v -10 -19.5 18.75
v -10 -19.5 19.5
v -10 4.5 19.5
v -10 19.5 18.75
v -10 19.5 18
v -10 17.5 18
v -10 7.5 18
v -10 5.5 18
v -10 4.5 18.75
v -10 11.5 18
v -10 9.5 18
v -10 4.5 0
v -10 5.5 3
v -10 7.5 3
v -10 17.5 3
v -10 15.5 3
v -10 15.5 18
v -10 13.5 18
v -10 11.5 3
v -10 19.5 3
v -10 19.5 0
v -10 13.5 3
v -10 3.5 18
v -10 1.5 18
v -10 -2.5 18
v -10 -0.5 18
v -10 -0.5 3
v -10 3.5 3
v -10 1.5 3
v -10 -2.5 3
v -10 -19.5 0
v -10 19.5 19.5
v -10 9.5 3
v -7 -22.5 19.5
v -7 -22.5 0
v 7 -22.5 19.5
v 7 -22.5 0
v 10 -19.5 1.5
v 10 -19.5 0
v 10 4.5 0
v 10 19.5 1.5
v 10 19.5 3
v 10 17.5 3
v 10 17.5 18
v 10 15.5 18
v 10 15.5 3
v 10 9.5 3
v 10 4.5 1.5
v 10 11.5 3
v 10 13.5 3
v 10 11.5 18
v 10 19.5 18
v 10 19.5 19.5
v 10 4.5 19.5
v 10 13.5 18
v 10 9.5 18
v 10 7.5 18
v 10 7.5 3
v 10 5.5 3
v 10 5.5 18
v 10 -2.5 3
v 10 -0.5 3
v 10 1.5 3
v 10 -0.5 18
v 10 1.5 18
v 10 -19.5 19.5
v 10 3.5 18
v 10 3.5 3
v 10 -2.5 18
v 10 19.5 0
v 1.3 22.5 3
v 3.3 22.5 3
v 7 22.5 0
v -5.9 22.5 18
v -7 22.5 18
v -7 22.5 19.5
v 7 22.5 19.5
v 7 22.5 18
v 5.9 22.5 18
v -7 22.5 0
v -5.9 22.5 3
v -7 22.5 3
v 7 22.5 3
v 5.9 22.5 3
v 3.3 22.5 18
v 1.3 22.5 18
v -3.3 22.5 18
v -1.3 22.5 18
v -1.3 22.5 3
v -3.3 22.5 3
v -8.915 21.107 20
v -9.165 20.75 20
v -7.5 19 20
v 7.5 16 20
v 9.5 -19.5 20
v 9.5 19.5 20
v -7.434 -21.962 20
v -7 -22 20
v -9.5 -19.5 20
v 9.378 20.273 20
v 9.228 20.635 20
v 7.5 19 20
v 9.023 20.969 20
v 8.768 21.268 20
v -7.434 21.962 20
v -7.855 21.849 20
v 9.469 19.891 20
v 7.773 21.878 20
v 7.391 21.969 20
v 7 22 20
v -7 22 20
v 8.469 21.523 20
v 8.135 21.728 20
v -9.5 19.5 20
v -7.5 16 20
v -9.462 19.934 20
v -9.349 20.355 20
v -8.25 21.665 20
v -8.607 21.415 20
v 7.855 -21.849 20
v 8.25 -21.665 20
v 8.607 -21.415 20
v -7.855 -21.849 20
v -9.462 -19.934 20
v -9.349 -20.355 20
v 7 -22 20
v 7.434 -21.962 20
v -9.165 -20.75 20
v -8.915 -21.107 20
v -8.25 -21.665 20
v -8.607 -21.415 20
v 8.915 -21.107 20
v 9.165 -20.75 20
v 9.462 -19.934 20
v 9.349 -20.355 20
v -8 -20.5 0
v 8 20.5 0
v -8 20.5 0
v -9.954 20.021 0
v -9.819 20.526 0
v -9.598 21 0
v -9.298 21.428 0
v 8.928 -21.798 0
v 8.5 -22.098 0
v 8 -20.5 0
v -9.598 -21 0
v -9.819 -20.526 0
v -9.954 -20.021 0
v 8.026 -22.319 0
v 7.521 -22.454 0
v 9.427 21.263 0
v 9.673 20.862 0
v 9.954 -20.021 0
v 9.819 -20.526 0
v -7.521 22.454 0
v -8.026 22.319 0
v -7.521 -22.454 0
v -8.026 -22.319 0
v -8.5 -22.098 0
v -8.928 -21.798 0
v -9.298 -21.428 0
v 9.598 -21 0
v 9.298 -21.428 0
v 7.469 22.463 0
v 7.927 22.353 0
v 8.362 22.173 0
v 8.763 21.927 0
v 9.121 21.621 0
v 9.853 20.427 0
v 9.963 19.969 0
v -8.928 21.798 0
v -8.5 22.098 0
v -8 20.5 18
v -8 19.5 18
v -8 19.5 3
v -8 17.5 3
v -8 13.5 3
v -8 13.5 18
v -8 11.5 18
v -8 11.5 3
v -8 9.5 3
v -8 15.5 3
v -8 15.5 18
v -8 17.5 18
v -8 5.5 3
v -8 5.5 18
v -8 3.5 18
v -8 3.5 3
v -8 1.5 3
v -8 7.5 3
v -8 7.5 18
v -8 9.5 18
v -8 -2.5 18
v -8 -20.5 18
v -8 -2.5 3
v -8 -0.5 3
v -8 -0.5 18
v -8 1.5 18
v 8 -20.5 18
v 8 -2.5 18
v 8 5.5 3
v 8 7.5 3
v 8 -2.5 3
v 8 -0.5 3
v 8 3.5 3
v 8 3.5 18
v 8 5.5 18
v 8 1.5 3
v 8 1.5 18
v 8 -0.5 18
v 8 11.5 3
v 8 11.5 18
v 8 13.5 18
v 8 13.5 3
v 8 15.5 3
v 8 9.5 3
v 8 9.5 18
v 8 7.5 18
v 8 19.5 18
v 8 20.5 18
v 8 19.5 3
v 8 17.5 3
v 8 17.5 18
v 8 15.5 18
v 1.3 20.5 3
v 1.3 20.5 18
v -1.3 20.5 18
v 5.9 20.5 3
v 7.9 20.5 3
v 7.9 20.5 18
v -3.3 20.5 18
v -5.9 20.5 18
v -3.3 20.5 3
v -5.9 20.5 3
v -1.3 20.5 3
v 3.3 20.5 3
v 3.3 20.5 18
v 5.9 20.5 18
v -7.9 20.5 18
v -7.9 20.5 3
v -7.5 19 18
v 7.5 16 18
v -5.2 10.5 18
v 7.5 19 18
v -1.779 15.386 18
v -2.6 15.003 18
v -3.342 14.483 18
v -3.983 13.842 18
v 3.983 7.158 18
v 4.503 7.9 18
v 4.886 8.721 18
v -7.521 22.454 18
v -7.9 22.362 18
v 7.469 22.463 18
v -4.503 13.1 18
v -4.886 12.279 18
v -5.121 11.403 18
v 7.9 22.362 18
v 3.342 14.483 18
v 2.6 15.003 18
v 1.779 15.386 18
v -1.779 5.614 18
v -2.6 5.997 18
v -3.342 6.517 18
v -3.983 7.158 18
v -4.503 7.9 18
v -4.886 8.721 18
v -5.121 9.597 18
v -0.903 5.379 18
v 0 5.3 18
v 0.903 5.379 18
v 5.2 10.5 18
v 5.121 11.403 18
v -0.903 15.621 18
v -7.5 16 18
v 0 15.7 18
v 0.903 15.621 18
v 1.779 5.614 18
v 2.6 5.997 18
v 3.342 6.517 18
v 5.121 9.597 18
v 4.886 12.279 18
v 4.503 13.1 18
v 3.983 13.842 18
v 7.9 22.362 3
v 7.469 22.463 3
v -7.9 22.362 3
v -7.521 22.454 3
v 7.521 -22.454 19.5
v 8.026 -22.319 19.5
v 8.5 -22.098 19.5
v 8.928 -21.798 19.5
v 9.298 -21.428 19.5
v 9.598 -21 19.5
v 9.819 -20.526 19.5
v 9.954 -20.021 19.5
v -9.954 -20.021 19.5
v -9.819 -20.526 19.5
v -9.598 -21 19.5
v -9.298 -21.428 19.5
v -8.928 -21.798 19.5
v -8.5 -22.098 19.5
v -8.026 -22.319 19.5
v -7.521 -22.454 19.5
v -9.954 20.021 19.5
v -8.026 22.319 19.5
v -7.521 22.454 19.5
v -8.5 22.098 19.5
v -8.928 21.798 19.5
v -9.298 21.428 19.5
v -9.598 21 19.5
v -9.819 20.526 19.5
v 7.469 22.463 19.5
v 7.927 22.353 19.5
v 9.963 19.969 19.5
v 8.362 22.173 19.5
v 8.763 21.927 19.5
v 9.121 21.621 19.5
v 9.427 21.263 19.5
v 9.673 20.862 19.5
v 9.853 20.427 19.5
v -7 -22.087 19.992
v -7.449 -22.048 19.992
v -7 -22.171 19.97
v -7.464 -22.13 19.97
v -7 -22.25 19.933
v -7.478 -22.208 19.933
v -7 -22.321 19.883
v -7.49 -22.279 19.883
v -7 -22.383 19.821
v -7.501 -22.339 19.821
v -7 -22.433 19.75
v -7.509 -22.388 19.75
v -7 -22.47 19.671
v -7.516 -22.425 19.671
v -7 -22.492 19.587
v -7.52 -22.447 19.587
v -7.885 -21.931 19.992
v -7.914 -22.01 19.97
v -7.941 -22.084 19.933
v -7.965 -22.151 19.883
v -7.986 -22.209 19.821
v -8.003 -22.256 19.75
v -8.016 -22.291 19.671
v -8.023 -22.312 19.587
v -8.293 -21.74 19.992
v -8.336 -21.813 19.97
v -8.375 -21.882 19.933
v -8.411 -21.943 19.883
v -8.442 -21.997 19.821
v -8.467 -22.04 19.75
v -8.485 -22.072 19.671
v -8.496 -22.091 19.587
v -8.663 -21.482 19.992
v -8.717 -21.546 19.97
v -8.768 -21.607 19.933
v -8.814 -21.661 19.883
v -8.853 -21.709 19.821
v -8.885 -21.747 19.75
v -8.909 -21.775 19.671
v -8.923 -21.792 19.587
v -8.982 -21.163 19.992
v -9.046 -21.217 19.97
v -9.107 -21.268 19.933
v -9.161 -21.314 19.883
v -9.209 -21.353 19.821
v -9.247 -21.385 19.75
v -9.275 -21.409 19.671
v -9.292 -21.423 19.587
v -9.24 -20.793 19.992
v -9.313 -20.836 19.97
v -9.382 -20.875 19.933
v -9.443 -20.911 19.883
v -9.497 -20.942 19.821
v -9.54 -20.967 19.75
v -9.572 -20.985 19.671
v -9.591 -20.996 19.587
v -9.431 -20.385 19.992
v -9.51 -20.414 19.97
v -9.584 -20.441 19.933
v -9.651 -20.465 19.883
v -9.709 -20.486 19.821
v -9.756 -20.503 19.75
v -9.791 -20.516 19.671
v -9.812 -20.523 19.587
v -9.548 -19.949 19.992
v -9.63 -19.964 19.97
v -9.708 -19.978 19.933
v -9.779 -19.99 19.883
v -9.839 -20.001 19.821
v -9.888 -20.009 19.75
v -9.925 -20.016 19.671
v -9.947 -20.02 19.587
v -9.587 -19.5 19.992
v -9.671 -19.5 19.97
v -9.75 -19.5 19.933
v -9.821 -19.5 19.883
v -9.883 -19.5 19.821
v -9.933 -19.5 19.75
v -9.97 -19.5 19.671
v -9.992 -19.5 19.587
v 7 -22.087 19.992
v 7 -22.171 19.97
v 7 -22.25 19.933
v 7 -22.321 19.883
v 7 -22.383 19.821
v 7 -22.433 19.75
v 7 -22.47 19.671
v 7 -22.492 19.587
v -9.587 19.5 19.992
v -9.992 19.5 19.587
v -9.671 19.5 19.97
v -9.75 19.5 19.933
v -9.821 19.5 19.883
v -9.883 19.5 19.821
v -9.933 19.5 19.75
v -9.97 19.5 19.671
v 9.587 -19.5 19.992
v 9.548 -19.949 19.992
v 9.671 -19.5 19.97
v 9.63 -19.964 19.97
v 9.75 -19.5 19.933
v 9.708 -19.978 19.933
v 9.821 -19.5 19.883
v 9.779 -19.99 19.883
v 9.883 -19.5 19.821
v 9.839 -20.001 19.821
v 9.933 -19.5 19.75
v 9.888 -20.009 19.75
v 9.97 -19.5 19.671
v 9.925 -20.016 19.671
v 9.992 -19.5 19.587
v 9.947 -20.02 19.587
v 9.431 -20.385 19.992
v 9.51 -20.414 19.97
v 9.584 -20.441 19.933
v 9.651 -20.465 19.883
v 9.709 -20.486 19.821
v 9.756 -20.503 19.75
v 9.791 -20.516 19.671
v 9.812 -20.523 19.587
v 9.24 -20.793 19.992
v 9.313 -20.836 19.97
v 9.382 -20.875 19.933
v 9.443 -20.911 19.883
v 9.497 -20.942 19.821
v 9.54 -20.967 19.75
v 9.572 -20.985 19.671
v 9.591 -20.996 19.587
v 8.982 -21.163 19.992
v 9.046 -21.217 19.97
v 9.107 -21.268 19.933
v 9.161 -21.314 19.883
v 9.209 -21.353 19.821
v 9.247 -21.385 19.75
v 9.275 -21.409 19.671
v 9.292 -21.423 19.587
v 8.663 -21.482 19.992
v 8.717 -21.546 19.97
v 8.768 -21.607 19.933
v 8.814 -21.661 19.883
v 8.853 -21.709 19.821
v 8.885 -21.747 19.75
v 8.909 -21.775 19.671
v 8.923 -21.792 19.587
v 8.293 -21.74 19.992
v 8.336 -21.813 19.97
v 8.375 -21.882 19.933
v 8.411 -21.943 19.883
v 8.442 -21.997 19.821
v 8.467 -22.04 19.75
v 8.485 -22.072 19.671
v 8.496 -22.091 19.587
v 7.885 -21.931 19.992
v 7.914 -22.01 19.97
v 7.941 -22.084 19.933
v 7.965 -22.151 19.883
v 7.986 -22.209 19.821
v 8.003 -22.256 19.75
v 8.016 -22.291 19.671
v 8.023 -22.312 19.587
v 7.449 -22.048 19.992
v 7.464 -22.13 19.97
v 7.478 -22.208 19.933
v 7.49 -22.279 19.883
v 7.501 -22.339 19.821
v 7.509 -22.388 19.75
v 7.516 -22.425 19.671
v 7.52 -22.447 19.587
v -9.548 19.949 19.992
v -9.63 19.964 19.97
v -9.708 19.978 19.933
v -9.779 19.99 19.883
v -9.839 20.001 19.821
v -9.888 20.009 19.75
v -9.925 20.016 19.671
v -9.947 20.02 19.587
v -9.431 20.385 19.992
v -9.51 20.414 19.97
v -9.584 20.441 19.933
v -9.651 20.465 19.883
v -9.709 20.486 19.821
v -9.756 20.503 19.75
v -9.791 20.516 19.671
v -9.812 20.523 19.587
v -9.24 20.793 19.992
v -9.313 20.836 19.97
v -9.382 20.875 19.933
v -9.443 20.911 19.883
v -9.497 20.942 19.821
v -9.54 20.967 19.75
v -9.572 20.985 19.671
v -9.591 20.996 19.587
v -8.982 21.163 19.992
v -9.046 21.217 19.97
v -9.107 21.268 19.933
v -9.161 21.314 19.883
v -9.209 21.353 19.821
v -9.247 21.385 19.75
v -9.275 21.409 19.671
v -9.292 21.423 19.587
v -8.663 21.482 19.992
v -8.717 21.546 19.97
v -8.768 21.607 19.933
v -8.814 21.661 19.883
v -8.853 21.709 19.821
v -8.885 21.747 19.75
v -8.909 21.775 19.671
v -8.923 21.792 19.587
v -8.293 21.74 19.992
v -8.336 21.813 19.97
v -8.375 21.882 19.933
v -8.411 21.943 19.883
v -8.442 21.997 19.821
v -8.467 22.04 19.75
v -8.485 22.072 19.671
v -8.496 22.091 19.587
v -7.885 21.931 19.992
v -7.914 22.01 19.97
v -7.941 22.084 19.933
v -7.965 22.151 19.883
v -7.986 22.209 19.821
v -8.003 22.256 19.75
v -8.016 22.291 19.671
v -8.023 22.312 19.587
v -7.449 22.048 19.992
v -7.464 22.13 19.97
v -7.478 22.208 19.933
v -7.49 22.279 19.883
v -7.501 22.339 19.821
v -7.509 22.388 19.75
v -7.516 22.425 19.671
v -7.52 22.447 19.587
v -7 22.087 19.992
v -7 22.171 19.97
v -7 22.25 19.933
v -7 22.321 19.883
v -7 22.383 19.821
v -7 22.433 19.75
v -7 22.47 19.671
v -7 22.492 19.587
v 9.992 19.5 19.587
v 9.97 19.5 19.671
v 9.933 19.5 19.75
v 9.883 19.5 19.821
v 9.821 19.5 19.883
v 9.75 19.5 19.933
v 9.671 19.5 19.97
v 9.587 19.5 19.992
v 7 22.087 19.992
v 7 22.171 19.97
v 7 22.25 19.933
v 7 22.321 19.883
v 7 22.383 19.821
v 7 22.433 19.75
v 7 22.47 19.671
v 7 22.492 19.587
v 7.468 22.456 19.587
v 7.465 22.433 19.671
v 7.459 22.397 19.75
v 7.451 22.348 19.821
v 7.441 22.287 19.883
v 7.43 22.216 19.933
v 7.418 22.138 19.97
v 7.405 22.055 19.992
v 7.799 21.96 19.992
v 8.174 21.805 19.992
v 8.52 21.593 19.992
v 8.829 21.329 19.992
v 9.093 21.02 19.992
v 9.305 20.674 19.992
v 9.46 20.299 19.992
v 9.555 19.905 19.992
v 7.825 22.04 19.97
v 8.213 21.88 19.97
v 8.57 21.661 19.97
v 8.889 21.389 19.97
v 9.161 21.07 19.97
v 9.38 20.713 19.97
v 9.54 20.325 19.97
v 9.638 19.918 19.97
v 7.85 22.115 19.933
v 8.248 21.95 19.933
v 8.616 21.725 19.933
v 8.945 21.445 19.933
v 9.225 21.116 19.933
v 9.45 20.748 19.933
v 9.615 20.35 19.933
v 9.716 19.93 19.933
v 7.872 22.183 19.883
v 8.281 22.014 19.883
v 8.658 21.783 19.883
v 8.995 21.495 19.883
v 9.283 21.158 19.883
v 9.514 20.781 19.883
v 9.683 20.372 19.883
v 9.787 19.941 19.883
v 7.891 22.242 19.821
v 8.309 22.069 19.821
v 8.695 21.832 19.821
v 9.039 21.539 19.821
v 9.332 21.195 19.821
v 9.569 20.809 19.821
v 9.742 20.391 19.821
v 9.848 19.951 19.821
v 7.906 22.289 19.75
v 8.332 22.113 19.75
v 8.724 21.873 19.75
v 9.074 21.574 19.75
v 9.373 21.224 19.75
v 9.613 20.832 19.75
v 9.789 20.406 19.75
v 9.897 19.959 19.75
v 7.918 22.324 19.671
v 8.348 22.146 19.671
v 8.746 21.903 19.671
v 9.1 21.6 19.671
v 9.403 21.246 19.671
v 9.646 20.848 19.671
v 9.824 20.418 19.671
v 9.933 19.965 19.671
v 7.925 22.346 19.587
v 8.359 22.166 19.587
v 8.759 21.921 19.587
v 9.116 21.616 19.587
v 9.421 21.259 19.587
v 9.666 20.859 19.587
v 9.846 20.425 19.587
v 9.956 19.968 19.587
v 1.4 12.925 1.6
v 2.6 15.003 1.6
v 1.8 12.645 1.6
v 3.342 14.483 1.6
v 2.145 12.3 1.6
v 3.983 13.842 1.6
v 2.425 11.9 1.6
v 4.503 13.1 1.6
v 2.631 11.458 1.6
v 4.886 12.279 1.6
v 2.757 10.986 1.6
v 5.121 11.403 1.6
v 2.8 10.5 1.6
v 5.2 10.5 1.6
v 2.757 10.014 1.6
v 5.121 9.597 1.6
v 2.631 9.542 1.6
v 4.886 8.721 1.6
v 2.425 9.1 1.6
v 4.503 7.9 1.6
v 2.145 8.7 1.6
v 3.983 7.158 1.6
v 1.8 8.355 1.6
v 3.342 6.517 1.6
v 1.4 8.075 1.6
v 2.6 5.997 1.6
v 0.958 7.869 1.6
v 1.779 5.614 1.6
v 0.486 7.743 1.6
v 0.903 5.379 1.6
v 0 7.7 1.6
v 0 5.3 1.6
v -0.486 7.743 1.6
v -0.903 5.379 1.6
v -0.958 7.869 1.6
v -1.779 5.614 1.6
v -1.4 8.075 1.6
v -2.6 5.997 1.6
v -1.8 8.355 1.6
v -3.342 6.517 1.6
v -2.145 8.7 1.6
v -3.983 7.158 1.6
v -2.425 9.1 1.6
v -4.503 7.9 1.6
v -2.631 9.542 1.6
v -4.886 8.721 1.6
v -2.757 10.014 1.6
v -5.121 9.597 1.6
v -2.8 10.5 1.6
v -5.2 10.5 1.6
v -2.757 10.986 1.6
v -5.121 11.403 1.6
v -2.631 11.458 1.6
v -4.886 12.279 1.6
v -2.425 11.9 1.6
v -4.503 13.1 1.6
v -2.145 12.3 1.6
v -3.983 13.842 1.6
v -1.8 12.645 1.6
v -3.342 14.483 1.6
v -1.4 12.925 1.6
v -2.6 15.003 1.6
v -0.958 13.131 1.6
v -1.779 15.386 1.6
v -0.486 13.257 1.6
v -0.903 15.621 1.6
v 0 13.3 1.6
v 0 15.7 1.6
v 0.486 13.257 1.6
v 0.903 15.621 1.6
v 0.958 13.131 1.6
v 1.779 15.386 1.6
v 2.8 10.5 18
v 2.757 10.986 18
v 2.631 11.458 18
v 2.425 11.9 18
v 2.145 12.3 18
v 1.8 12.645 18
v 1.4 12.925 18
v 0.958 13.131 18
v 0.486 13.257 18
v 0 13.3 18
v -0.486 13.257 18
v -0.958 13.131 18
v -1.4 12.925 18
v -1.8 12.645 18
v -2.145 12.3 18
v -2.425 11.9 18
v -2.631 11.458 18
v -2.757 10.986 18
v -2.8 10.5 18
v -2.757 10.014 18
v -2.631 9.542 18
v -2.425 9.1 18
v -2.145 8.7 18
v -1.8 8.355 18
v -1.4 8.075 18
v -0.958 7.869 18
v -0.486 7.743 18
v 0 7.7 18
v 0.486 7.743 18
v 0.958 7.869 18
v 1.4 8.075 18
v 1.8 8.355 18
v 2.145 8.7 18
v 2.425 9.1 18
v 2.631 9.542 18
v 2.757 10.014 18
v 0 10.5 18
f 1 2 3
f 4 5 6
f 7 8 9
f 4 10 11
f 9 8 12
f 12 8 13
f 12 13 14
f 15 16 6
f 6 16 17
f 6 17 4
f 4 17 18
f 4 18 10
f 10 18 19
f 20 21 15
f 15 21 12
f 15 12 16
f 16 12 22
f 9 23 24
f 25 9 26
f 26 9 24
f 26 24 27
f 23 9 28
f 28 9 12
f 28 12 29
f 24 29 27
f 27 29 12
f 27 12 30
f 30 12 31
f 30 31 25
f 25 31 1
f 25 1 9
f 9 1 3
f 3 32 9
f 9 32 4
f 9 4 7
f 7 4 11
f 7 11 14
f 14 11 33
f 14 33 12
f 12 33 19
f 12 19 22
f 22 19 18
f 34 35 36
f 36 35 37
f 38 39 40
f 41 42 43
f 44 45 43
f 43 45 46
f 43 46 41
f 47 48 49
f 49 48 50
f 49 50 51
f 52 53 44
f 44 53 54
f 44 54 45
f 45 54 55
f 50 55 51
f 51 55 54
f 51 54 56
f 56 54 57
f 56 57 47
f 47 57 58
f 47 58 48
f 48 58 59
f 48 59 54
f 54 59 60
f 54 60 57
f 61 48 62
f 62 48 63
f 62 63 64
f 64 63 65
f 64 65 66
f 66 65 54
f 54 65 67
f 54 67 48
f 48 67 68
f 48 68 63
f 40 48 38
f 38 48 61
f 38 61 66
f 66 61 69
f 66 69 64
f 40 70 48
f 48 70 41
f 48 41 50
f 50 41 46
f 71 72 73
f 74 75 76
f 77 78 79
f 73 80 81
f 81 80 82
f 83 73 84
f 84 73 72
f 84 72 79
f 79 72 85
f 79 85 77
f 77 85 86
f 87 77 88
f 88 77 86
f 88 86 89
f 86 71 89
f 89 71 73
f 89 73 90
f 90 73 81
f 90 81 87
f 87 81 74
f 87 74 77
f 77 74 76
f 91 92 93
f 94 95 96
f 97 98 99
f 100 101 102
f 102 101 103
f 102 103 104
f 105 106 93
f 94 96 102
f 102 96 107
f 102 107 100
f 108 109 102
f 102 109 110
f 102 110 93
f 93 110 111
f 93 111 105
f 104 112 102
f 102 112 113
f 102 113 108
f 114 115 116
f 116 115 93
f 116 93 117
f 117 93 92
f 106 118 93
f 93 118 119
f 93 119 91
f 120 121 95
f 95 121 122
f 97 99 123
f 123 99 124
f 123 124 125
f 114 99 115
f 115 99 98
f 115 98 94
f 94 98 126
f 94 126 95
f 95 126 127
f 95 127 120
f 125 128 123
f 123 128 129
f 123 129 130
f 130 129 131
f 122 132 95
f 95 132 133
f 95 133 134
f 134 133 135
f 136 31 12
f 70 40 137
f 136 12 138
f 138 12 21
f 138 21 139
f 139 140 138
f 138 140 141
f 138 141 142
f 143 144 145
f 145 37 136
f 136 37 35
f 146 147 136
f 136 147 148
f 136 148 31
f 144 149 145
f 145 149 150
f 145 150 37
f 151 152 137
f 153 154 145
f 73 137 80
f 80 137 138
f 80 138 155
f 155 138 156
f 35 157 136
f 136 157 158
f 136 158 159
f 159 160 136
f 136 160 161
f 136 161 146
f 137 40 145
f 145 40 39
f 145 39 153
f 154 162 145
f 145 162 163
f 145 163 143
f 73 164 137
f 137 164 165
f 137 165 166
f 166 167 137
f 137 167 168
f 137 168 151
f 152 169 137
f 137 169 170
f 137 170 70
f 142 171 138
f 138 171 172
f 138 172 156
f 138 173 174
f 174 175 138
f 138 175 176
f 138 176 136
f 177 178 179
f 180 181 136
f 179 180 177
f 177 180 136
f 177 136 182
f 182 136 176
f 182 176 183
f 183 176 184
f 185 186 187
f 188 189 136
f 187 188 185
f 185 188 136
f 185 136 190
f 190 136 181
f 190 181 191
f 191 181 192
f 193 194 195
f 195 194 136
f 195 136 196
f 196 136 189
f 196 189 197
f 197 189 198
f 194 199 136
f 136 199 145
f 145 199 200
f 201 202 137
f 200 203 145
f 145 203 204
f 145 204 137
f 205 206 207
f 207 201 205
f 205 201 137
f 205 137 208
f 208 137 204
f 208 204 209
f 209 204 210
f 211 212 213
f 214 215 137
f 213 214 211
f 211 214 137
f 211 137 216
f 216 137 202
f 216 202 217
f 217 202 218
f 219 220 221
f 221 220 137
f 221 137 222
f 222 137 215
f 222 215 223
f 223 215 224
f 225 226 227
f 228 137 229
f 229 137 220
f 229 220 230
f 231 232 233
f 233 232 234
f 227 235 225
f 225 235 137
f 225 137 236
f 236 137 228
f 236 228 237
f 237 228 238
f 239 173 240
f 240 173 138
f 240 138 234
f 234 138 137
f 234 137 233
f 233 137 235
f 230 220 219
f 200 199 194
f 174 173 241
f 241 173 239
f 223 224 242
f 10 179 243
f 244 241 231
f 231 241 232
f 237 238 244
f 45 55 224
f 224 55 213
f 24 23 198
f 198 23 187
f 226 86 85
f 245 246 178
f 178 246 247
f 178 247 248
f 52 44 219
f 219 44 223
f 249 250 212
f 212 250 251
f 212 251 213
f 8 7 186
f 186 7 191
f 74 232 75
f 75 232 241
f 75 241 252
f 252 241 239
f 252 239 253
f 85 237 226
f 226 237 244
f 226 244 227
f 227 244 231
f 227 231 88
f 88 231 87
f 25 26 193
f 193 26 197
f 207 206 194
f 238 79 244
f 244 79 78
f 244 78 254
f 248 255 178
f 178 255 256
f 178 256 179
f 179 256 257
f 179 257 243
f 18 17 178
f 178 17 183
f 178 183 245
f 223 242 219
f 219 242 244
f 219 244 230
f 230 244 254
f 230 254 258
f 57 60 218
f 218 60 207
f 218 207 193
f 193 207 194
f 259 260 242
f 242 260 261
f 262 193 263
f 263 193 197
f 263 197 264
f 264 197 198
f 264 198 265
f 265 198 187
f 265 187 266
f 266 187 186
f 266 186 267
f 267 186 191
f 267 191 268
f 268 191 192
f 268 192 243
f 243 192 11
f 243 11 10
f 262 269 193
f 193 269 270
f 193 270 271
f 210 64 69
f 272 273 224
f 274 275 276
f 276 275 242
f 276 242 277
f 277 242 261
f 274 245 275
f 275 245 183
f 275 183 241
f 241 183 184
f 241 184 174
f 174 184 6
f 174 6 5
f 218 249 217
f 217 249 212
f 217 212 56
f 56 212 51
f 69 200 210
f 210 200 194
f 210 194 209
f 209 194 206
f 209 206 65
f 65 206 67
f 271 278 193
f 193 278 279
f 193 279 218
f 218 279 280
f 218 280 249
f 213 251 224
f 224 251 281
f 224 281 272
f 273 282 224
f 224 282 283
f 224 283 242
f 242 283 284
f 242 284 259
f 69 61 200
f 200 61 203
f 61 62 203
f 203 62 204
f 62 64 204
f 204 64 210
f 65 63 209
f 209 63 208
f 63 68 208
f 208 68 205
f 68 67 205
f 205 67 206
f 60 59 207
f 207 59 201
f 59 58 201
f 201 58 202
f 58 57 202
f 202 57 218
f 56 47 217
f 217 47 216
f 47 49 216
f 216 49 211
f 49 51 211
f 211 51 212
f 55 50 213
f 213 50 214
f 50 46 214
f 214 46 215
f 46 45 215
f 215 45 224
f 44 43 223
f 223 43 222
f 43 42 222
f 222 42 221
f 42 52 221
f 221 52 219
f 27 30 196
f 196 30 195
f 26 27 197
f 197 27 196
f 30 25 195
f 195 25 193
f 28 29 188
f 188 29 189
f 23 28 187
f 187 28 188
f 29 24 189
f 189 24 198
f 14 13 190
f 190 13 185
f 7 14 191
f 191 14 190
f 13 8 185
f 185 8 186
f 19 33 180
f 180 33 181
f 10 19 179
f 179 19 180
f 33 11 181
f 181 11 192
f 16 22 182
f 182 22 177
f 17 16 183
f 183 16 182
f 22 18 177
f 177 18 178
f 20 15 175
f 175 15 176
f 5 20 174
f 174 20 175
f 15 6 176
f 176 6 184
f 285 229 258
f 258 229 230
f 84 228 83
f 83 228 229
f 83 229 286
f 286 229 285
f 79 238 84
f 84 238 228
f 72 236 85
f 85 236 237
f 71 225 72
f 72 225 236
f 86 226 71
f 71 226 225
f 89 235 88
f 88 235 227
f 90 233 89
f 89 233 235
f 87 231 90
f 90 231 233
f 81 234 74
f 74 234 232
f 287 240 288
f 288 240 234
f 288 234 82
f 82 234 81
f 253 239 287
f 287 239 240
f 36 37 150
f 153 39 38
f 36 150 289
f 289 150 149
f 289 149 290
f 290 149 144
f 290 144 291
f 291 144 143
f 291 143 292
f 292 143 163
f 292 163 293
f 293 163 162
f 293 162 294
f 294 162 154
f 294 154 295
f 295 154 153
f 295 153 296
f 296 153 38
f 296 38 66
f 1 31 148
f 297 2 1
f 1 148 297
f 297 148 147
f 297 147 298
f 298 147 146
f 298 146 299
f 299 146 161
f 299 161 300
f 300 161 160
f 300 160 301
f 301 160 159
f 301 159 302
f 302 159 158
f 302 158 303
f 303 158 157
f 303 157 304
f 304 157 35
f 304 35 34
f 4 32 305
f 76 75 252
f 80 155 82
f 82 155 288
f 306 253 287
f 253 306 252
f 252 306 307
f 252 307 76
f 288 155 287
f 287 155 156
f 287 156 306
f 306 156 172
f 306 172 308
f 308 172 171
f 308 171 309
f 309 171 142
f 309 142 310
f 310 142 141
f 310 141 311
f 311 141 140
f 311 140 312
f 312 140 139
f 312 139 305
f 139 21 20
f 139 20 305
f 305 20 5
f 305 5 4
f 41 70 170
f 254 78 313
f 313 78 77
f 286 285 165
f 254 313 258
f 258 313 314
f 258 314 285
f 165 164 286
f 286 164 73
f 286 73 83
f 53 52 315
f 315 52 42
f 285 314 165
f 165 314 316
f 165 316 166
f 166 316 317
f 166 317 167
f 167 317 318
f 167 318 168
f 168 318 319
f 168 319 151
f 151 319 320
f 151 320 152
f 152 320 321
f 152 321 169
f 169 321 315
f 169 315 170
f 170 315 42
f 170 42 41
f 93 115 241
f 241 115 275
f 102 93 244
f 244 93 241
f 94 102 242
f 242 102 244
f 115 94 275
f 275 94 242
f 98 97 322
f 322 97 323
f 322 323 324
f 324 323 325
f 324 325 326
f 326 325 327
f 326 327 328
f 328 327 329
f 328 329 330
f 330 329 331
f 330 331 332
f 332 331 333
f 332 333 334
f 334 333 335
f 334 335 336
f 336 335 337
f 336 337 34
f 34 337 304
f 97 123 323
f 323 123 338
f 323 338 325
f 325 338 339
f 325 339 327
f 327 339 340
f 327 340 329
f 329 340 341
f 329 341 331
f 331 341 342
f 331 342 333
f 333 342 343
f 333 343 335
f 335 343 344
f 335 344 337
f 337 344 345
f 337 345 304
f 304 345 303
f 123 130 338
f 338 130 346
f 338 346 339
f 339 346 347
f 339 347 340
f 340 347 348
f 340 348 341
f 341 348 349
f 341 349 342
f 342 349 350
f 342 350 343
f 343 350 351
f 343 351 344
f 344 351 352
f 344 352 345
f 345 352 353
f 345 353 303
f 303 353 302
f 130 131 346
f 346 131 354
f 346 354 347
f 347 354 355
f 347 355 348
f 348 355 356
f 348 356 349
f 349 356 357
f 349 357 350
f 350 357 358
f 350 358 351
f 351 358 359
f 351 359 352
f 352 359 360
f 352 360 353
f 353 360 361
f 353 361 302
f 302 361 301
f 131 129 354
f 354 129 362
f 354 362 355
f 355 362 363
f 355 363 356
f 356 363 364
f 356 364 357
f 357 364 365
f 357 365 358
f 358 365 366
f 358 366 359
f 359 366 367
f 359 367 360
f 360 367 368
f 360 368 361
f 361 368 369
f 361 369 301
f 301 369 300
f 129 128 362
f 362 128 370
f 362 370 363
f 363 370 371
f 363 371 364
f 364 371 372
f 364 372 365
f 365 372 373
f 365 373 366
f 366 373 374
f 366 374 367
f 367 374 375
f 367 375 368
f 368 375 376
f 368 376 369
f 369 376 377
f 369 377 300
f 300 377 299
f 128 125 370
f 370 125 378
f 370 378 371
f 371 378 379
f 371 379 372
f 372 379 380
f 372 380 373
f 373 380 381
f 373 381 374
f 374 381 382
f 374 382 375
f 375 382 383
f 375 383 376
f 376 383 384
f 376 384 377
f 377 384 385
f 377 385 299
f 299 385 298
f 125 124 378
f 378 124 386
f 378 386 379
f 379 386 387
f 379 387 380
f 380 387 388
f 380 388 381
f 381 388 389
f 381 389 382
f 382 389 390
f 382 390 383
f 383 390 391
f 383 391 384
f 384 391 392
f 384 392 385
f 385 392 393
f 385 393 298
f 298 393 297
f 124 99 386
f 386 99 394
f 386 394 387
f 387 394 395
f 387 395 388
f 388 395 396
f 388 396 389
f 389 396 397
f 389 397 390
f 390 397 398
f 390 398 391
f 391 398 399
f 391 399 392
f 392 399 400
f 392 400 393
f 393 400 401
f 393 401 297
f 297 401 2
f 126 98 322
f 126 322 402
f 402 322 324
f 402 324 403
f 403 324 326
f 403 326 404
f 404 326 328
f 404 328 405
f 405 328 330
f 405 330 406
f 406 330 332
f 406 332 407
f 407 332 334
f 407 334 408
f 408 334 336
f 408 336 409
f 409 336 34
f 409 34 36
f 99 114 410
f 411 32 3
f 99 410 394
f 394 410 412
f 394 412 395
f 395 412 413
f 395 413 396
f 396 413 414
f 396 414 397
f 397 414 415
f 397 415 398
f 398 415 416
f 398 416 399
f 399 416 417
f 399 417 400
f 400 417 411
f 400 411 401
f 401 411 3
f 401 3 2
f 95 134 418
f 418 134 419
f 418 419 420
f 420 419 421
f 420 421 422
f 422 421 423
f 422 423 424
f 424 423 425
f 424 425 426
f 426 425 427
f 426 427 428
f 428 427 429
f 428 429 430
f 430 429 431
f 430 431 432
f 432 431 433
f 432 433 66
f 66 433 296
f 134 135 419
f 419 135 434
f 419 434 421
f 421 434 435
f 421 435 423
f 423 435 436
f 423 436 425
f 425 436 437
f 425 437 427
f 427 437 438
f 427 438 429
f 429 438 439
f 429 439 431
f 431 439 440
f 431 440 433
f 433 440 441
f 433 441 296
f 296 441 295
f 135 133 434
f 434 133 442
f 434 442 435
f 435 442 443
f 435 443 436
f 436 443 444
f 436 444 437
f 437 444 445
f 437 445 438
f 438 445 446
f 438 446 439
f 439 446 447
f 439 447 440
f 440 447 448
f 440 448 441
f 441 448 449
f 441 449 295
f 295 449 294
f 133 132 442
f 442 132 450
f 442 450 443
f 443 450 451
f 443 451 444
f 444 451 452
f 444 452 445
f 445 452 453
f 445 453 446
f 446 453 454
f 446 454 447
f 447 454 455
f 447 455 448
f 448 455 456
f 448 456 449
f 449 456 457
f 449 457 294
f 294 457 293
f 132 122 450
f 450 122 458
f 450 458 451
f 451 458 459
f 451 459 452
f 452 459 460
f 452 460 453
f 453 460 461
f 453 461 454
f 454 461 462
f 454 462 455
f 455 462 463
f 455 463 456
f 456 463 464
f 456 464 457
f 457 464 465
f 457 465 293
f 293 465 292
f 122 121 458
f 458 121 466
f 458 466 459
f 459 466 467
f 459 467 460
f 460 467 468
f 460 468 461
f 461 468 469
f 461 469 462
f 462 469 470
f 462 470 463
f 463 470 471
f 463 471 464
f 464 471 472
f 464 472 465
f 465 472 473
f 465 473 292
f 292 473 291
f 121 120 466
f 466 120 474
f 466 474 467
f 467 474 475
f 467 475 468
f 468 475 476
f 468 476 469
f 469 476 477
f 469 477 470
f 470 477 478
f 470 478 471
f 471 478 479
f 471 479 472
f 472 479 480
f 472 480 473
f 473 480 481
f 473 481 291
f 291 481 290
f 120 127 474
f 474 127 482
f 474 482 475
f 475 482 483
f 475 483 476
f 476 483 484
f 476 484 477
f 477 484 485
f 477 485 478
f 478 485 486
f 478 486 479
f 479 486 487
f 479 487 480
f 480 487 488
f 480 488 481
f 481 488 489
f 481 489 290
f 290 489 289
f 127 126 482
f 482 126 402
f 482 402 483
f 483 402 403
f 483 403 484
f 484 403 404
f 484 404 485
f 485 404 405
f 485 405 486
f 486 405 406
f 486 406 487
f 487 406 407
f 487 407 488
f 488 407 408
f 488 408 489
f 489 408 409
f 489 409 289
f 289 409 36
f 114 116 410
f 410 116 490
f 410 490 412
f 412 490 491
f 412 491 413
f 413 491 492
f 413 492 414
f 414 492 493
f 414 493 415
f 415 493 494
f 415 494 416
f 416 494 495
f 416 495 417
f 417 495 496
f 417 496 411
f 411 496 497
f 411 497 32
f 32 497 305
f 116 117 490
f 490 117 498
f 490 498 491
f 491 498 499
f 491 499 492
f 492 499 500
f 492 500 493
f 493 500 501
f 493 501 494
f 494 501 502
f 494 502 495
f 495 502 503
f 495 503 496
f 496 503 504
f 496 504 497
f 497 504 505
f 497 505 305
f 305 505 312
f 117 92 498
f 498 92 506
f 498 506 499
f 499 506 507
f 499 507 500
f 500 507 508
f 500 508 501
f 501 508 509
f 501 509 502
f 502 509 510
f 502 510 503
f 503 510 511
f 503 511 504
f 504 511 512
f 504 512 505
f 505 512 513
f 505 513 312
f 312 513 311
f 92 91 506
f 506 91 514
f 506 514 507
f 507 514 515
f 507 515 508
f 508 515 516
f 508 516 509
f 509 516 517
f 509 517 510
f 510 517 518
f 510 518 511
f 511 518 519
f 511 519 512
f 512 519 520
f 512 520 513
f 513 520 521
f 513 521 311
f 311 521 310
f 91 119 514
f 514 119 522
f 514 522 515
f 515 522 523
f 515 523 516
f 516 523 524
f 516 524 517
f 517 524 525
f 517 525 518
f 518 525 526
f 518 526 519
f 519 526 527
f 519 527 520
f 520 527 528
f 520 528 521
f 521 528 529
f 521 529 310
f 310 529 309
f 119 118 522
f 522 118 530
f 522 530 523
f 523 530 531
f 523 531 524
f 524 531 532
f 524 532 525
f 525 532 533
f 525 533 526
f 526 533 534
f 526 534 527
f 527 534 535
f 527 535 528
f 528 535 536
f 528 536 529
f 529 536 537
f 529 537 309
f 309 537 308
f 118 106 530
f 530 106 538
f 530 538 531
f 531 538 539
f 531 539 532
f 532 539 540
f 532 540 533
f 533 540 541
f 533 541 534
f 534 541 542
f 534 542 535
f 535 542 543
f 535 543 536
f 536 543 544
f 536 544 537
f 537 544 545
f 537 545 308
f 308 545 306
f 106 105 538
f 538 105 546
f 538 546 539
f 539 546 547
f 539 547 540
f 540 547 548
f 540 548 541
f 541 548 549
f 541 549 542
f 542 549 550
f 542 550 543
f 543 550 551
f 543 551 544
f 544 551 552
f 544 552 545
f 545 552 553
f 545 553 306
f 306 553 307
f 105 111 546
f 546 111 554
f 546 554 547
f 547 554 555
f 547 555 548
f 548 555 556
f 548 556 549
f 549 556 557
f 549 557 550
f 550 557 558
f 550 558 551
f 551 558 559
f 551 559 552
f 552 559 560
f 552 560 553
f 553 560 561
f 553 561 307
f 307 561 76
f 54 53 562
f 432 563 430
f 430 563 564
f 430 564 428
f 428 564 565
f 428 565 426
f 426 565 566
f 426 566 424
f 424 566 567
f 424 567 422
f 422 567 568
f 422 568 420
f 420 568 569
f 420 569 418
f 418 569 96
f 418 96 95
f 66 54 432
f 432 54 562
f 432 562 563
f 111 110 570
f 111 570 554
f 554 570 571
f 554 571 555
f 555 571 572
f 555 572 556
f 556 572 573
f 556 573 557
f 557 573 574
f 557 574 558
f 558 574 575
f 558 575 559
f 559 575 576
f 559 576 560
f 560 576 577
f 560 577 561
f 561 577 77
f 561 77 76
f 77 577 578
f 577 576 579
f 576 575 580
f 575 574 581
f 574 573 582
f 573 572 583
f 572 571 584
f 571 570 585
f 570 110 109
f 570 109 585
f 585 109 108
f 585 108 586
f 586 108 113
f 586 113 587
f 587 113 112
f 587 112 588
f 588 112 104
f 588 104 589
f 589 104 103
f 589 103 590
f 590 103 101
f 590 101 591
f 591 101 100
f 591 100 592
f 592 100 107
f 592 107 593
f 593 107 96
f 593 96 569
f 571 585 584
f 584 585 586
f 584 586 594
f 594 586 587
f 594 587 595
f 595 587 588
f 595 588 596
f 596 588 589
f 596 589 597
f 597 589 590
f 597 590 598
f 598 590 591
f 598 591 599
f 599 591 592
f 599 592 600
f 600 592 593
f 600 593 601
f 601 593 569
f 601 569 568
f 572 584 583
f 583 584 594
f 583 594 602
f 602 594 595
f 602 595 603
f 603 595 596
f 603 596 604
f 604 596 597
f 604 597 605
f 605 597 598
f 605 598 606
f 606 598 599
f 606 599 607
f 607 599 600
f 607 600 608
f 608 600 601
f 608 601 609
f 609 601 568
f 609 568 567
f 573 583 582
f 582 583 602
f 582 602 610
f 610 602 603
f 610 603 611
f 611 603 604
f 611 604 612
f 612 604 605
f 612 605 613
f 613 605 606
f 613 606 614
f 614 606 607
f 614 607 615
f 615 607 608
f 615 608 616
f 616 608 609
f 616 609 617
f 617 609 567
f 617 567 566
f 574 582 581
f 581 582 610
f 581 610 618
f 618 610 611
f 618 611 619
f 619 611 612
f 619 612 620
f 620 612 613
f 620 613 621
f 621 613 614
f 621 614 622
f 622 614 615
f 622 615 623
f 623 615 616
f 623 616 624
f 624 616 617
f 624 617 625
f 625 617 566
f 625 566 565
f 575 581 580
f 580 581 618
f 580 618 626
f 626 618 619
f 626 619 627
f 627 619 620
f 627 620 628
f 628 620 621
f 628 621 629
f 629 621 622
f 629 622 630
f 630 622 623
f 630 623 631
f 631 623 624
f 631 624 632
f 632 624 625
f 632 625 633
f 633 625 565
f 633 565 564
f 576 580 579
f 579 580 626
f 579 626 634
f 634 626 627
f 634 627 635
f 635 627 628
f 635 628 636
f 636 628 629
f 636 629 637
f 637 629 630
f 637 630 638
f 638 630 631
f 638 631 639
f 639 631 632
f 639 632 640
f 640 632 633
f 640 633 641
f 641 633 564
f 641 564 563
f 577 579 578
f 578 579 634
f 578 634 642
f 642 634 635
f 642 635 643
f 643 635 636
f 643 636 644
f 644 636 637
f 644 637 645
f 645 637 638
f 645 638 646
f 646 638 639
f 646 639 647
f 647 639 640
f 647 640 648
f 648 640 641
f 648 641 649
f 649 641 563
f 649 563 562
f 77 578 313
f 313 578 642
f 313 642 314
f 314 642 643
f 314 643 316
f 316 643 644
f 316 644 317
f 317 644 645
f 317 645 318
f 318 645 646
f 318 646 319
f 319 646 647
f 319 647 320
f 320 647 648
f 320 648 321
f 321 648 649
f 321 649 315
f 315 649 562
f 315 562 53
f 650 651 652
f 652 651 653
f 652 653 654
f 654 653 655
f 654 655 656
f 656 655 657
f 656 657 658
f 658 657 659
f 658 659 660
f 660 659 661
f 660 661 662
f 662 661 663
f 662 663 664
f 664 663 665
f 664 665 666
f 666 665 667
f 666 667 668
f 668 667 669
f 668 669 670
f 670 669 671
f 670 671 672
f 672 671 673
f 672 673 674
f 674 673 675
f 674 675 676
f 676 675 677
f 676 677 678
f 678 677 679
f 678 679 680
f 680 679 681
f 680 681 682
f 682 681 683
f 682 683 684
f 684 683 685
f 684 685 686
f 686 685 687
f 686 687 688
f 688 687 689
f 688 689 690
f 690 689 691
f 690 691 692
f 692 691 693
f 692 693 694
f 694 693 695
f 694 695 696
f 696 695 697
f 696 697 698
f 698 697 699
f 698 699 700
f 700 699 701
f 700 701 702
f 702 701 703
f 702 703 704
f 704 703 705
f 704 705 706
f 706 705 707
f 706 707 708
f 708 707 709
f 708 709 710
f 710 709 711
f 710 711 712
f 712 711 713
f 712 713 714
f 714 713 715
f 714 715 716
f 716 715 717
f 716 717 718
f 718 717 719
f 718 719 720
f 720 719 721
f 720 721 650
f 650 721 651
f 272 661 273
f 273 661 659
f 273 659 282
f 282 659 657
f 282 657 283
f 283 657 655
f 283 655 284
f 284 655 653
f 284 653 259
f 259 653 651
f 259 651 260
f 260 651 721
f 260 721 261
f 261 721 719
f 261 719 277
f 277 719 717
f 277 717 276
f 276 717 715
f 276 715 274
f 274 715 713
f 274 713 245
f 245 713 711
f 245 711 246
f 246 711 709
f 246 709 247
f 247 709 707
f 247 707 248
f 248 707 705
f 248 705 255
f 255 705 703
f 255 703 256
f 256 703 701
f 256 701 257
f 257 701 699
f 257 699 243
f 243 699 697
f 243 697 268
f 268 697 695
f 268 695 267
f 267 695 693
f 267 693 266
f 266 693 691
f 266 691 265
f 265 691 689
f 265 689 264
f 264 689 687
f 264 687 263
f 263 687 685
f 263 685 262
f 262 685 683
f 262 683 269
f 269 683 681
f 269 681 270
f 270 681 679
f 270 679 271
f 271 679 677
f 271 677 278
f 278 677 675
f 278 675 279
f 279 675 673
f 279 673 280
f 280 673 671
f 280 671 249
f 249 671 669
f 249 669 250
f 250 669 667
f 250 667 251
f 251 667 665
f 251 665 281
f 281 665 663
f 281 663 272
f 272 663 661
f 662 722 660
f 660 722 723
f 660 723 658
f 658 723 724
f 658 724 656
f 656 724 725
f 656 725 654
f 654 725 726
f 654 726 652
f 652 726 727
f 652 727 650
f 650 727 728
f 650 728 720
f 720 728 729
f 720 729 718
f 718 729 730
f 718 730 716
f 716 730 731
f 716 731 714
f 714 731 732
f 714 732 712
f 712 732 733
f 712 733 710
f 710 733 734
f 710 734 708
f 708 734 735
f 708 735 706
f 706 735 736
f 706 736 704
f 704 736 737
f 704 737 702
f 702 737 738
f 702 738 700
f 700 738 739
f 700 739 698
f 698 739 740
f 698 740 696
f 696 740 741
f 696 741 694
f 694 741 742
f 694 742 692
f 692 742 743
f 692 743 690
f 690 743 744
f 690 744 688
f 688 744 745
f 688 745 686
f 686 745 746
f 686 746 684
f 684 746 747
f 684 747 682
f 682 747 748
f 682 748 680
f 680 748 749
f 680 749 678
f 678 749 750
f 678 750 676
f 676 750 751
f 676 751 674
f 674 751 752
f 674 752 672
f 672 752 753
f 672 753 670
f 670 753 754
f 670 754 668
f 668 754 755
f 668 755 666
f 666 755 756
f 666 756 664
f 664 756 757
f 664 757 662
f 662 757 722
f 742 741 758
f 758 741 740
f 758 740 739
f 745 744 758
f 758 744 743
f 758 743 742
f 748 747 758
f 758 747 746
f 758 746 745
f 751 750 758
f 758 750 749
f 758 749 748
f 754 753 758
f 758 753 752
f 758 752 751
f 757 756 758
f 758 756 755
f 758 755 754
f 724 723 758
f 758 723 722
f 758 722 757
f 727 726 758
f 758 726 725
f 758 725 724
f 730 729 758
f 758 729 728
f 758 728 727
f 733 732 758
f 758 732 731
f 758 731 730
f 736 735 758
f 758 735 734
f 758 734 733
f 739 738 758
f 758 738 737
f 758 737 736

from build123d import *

# Parameters (mm, degrees)
SKETCH2_W           = 20
SKETCH2_H           = 45
BOSS_EXTRUDE1_DEPTH = 20
SHELL1_T            = -2
CUT_EXTRUDE1_REACH  = 38.142
SKETCH3_W           = 15
SKETCH3_H           = 2
CUT_EXTRUDE2_REACH  = 52.249
SKETCH4_W           = 2
SKETCH4_H           = 15
FILLET1_R           = 3
SKETCH7_W           = 15
SKETCH7_H           = 3
CUT_EXTRUDE3_DEPTH  = 2
FILLET3_R           = 0.5
SKETCH8_R           = 5.2
SKETCH8_R_2         = 2.8
BOSS_EXTRUDE2_DEPTH = 16.4


with BuildPart() as part:
    # Sketch2 → Boss-Extrude1 (new body)
    with BuildSketch(Plane.XY):
        Rectangle(SKETCH2_W, SKETCH2_H)
    extrude(amount=BOSS_EXTRUDE1_DEPTH)

    # Shell1
    shell1_openings = [part.faces().sort_by_distance(p)[0] for p in [
        (0, 0, 0),
    ]]
    offset(amount=SHELL1_T, openings=shell1_openings, kind=Kind.INTERSECTION)

    # Cut-Extrude1: up to this face of the body (flat: up to its plane)
    cut_extrude1_end = Plane(part.part.faces().sort_by_distance((-10, 0, 10))[0])
    # Sketch3 → Cut-Extrude1 (cut, up to the picked face)
    with BuildSketch(Plane(origin=(10, 0, 0), x_dir=(0, 0, -1), z_dir=(1, 0, 0)), mode=Mode.PRIVATE) as cut_extrude1_sk1:
        with Locations((-10.5, 18.5)):
            Rectangle(SKETCH3_W, SKETCH3_H)
    cut_extrude1_tool1 = split(extrude(cut_extrude1_sk1.sketch, amount=-CUT_EXTRUDE1_REACH, mode=Mode.PRIVATE), bisect_by=cut_extrude1_end, keep=Keep.BOTH, mode=Mode.PRIVATE)
    # Sketch3 → Cut-Extrude1 (cut, up to the picked face)
    with BuildSketch(Plane(origin=(10, 0, 0), x_dir=(0, 0, -1), z_dir=(1, 0, 0)), mode=Mode.PRIVATE) as cut_extrude1_sk2:
        with Locations((-10.5, 14.5)):
            Rectangle(SKETCH3_W, SKETCH3_H)
    cut_extrude1_tool2 = split(extrude(cut_extrude1_sk2.sketch, amount=-CUT_EXTRUDE1_REACH, mode=Mode.PRIVATE), bisect_by=cut_extrude1_end, keep=Keep.BOTH, mode=Mode.PRIVATE)
    # Sketch3 → Cut-Extrude1 (cut, up to the picked face)
    with BuildSketch(Plane(origin=(10, 0, 0), x_dir=(0, 0, -1), z_dir=(1, 0, 0)), mode=Mode.PRIVATE) as cut_extrude1_sk3:
        with Locations((-10.5, 10.5)):
            Rectangle(SKETCH3_W, SKETCH3_H)
    cut_extrude1_tool3 = split(extrude(cut_extrude1_sk3.sketch, amount=-CUT_EXTRUDE1_REACH, mode=Mode.PRIVATE), bisect_by=cut_extrude1_end, keep=Keep.BOTH, mode=Mode.PRIVATE)
    # Sketch3 → Cut-Extrude1 (cut, up to the picked face)
    with BuildSketch(Plane(origin=(10, 0, 0), x_dir=(0, 0, -1), z_dir=(1, 0, 0)), mode=Mode.PRIVATE) as cut_extrude1_sk4:
        with Locations((-10.5, 6.5)):
            Rectangle(SKETCH3_W, SKETCH3_H)
    cut_extrude1_tool4 = split(extrude(cut_extrude1_sk4.sketch, amount=-CUT_EXTRUDE1_REACH, mode=Mode.PRIVATE), bisect_by=cut_extrude1_end, keep=Keep.BOTH, mode=Mode.PRIVATE)
    # Sketch3 → Cut-Extrude1 (cut, up to the picked face)
    with BuildSketch(Plane(origin=(10, 0, 0), x_dir=(0, 0, -1), z_dir=(1, 0, 0)), mode=Mode.PRIVATE) as cut_extrude1_sk5:
        with Locations((-10.5, 2.5)):
            Rectangle(SKETCH3_W, SKETCH3_H)
    cut_extrude1_tool5 = split(extrude(cut_extrude1_sk5.sketch, amount=-CUT_EXTRUDE1_REACH, mode=Mode.PRIVATE), bisect_by=cut_extrude1_end, keep=Keep.BOTH, mode=Mode.PRIVATE)
    # Sketch3 → Cut-Extrude1 (cut, up to the picked face)
    with BuildSketch(Plane(origin=(10, 0, 0), x_dir=(0, 0, -1), z_dir=(1, 0, 0)), mode=Mode.PRIVATE) as cut_extrude1_sk6:
        with Locations((-10.5, -1.5)):
            Rectangle(SKETCH3_W, SKETCH3_H)
    cut_extrude1_tool6 = split(extrude(cut_extrude1_sk6.sketch, amount=-CUT_EXTRUDE1_REACH, mode=Mode.PRIVATE), bisect_by=cut_extrude1_end, keep=Keep.BOTH, mode=Mode.PRIVATE)
    add(cut_extrude1_tool1.solids().sort_by(Axis((10, 18.5, 10.5), (-1, 0, 0)))[0], mode=Mode.SUBTRACT)
    add(cut_extrude1_tool2.solids().sort_by(Axis((10, 14.5, 10.5), (-1, 0, 0)))[0], mode=Mode.SUBTRACT)
    add(cut_extrude1_tool3.solids().sort_by(Axis((10, 10.5, 10.5), (-1, 0, 0)))[0], mode=Mode.SUBTRACT)
    add(cut_extrude1_tool4.solids().sort_by(Axis((10, 6.5, 10.5), (-1, 0, 0)))[0], mode=Mode.SUBTRACT)
    add(cut_extrude1_tool5.solids().sort_by(Axis((10, 2.5, 10.5), (-1, 0, 0)))[0], mode=Mode.SUBTRACT)
    add(cut_extrude1_tool6.solids().sort_by(Axis((10, -1.5, 10.5), (-1, 0, 0)))[0], mode=Mode.SUBTRACT)

    # Sketch4 → Cut-Extrude2 (cut, up to next)
    with BuildSketch(Plane(origin=(0, 22.5, 0), x_dir=(1, 0, 0), z_dir=(0, 1, 0)), mode=Mode.PRIVATE) as cut_extrude2_sk1:
        with Locations((-6.9, -10.5)):
            Rectangle(SKETCH4_W, SKETCH4_H)
    cut_extrude2_tool1 = extrude(cut_extrude2_sk1.sketch, amount=-CUT_EXTRUDE2_REACH, mode=Mode.PRIVATE) & part.part
    # Sketch4 → Cut-Extrude2 (cut, up to next)
    with BuildSketch(Plane(origin=(0, 22.5, 0), x_dir=(1, 0, 0), z_dir=(0, 1, 0)), mode=Mode.PRIVATE) as cut_extrude2_sk2:
        with Locations((-2.3, -10.5)):
            Rectangle(SKETCH4_W, SKETCH4_H)
    cut_extrude2_tool2 = extrude(cut_extrude2_sk2.sketch, amount=-CUT_EXTRUDE2_REACH, mode=Mode.PRIVATE) & part.part
    # Sketch4 → Cut-Extrude2 (cut, up to next)
    with BuildSketch(Plane(origin=(0, 22.5, 0), x_dir=(1, 0, 0), z_dir=(0, 1, 0)), mode=Mode.PRIVATE) as cut_extrude2_sk3:
        with Locations((2.3, -10.5)):
            Rectangle(SKETCH4_W, SKETCH4_H)
    cut_extrude2_tool3 = extrude(cut_extrude2_sk3.sketch, amount=-CUT_EXTRUDE2_REACH, mode=Mode.PRIVATE) & part.part
    # Sketch4 → Cut-Extrude2 (cut, up to next)
    with BuildSketch(Plane(origin=(0, 22.5, 0), x_dir=(1, 0, 0), z_dir=(0, 1, 0)), mode=Mode.PRIVATE) as cut_extrude2_sk4:
        with Locations((6.9, -10.5)):
            Rectangle(SKETCH4_W, SKETCH4_H)
    cut_extrude2_tool4 = extrude(cut_extrude2_sk4.sketch, amount=-CUT_EXTRUDE2_REACH, mode=Mode.PRIVATE) & part.part
    add(cut_extrude2_tool1.solids().sort_by_distance((-6.9, 22.5, 10.5))[0], mode=Mode.SUBTRACT)
    add(cut_extrude2_tool2.solids().sort_by_distance((-2.3, 22.5, 10.5))[0], mode=Mode.SUBTRACT)
    add(cut_extrude2_tool3.solids().sort_by_distance((2.3, 22.5, 10.5))[0], mode=Mode.SUBTRACT)
    add(cut_extrude2_tool4.solids().sort_by_distance((6.9, 22.5, 10.5))[0], mode=Mode.SUBTRACT)

    # Fillet1
    # the kernel refuses this fillet: 3 mm, written as the material it takes off along each edge
    with BuildSketch(Plane(origin=(10, -22.5, -7.5), x_dir=(-1, 0, 0), z_dir=(0, 0, 1)), Plane(origin=(10, 22.5, -7.5), x_dir=(0, -1, 0), z_dir=(0, 0, 1))) as fillet1_piece_1:
        with BuildLine():
            CenterArc((FILLET1_R, -FILLET1_R), FILLET1_R, 90, 90)
            Line((0, -FILLET1_R), (0, 0))
            Line((0, 0), (FILLET1_R, 0))
        make_face()
    extrude(amount=35, mode=Mode.SUBTRACT)
    with BuildSketch(Plane(origin=(-10, -22.5, -7.5), x_dir=(1, 0, 0), z_dir=(0, 0, 1)), Plane(origin=(-10, 22.5, -7.5), x_dir=(0, -1, 0), z_dir=(0, 0, 1))) as fillet1_piece_2:
        with BuildLine():
            CenterArc((FILLET1_R, FILLET1_R), FILLET1_R, 180, 90)
            Line((0, FILLET1_R), (0, 0))
            Line((0, 0), (FILLET1_R, 0))
        make_face()
    extrude(amount=35, mode=Mode.SUBTRACT)

    # Sketch7 → Cut-Extrude3 (cut)
    with BuildSketch(Plane.XY.offset(20)):
        with Locations((0, 17.5)):
            Rectangle(SKETCH7_W, SKETCH7_H)
    extrude(amount=-CUT_EXTRUDE3_DEPTH, mode=Mode.SUBTRACT)

    # Fillet3
    fillet3_edges = [part.edges().sort_by_distance(p)[0] for p in [
        (10, 0, 20),
        (0, -22.5, 20),
        (-10, 0, 20),
        (0, 22.5, 20),
        (9.121320344, 21.621320344, 20),
        (-9.121320344, 21.621320344, 20),
        (-9.121320344, -21.621320344, 20),
        (9.121320344, -21.621320344, 20),
    ]]
    fillet(fillet3_edges, radius=FILLET3_R)

    # Sketch8 → Boss-Extrude2 (add)
    with BuildSketch(Plane(origin=(0, 0, 18), x_dir=(-1, 0, 0), z_dir=(0, 0, -1))):
        with Locations(Location((0, 10.5, 0), (0, 0, 180))):
            Circle(SKETCH8_R)
        with Locations((0, 10.5)):
            Circle(SKETCH8_R_2, mode=Mode.SUBTRACT)
    extrude(amount=BOSS_EXTRUDE2_DEPTH)


solid = part.part
